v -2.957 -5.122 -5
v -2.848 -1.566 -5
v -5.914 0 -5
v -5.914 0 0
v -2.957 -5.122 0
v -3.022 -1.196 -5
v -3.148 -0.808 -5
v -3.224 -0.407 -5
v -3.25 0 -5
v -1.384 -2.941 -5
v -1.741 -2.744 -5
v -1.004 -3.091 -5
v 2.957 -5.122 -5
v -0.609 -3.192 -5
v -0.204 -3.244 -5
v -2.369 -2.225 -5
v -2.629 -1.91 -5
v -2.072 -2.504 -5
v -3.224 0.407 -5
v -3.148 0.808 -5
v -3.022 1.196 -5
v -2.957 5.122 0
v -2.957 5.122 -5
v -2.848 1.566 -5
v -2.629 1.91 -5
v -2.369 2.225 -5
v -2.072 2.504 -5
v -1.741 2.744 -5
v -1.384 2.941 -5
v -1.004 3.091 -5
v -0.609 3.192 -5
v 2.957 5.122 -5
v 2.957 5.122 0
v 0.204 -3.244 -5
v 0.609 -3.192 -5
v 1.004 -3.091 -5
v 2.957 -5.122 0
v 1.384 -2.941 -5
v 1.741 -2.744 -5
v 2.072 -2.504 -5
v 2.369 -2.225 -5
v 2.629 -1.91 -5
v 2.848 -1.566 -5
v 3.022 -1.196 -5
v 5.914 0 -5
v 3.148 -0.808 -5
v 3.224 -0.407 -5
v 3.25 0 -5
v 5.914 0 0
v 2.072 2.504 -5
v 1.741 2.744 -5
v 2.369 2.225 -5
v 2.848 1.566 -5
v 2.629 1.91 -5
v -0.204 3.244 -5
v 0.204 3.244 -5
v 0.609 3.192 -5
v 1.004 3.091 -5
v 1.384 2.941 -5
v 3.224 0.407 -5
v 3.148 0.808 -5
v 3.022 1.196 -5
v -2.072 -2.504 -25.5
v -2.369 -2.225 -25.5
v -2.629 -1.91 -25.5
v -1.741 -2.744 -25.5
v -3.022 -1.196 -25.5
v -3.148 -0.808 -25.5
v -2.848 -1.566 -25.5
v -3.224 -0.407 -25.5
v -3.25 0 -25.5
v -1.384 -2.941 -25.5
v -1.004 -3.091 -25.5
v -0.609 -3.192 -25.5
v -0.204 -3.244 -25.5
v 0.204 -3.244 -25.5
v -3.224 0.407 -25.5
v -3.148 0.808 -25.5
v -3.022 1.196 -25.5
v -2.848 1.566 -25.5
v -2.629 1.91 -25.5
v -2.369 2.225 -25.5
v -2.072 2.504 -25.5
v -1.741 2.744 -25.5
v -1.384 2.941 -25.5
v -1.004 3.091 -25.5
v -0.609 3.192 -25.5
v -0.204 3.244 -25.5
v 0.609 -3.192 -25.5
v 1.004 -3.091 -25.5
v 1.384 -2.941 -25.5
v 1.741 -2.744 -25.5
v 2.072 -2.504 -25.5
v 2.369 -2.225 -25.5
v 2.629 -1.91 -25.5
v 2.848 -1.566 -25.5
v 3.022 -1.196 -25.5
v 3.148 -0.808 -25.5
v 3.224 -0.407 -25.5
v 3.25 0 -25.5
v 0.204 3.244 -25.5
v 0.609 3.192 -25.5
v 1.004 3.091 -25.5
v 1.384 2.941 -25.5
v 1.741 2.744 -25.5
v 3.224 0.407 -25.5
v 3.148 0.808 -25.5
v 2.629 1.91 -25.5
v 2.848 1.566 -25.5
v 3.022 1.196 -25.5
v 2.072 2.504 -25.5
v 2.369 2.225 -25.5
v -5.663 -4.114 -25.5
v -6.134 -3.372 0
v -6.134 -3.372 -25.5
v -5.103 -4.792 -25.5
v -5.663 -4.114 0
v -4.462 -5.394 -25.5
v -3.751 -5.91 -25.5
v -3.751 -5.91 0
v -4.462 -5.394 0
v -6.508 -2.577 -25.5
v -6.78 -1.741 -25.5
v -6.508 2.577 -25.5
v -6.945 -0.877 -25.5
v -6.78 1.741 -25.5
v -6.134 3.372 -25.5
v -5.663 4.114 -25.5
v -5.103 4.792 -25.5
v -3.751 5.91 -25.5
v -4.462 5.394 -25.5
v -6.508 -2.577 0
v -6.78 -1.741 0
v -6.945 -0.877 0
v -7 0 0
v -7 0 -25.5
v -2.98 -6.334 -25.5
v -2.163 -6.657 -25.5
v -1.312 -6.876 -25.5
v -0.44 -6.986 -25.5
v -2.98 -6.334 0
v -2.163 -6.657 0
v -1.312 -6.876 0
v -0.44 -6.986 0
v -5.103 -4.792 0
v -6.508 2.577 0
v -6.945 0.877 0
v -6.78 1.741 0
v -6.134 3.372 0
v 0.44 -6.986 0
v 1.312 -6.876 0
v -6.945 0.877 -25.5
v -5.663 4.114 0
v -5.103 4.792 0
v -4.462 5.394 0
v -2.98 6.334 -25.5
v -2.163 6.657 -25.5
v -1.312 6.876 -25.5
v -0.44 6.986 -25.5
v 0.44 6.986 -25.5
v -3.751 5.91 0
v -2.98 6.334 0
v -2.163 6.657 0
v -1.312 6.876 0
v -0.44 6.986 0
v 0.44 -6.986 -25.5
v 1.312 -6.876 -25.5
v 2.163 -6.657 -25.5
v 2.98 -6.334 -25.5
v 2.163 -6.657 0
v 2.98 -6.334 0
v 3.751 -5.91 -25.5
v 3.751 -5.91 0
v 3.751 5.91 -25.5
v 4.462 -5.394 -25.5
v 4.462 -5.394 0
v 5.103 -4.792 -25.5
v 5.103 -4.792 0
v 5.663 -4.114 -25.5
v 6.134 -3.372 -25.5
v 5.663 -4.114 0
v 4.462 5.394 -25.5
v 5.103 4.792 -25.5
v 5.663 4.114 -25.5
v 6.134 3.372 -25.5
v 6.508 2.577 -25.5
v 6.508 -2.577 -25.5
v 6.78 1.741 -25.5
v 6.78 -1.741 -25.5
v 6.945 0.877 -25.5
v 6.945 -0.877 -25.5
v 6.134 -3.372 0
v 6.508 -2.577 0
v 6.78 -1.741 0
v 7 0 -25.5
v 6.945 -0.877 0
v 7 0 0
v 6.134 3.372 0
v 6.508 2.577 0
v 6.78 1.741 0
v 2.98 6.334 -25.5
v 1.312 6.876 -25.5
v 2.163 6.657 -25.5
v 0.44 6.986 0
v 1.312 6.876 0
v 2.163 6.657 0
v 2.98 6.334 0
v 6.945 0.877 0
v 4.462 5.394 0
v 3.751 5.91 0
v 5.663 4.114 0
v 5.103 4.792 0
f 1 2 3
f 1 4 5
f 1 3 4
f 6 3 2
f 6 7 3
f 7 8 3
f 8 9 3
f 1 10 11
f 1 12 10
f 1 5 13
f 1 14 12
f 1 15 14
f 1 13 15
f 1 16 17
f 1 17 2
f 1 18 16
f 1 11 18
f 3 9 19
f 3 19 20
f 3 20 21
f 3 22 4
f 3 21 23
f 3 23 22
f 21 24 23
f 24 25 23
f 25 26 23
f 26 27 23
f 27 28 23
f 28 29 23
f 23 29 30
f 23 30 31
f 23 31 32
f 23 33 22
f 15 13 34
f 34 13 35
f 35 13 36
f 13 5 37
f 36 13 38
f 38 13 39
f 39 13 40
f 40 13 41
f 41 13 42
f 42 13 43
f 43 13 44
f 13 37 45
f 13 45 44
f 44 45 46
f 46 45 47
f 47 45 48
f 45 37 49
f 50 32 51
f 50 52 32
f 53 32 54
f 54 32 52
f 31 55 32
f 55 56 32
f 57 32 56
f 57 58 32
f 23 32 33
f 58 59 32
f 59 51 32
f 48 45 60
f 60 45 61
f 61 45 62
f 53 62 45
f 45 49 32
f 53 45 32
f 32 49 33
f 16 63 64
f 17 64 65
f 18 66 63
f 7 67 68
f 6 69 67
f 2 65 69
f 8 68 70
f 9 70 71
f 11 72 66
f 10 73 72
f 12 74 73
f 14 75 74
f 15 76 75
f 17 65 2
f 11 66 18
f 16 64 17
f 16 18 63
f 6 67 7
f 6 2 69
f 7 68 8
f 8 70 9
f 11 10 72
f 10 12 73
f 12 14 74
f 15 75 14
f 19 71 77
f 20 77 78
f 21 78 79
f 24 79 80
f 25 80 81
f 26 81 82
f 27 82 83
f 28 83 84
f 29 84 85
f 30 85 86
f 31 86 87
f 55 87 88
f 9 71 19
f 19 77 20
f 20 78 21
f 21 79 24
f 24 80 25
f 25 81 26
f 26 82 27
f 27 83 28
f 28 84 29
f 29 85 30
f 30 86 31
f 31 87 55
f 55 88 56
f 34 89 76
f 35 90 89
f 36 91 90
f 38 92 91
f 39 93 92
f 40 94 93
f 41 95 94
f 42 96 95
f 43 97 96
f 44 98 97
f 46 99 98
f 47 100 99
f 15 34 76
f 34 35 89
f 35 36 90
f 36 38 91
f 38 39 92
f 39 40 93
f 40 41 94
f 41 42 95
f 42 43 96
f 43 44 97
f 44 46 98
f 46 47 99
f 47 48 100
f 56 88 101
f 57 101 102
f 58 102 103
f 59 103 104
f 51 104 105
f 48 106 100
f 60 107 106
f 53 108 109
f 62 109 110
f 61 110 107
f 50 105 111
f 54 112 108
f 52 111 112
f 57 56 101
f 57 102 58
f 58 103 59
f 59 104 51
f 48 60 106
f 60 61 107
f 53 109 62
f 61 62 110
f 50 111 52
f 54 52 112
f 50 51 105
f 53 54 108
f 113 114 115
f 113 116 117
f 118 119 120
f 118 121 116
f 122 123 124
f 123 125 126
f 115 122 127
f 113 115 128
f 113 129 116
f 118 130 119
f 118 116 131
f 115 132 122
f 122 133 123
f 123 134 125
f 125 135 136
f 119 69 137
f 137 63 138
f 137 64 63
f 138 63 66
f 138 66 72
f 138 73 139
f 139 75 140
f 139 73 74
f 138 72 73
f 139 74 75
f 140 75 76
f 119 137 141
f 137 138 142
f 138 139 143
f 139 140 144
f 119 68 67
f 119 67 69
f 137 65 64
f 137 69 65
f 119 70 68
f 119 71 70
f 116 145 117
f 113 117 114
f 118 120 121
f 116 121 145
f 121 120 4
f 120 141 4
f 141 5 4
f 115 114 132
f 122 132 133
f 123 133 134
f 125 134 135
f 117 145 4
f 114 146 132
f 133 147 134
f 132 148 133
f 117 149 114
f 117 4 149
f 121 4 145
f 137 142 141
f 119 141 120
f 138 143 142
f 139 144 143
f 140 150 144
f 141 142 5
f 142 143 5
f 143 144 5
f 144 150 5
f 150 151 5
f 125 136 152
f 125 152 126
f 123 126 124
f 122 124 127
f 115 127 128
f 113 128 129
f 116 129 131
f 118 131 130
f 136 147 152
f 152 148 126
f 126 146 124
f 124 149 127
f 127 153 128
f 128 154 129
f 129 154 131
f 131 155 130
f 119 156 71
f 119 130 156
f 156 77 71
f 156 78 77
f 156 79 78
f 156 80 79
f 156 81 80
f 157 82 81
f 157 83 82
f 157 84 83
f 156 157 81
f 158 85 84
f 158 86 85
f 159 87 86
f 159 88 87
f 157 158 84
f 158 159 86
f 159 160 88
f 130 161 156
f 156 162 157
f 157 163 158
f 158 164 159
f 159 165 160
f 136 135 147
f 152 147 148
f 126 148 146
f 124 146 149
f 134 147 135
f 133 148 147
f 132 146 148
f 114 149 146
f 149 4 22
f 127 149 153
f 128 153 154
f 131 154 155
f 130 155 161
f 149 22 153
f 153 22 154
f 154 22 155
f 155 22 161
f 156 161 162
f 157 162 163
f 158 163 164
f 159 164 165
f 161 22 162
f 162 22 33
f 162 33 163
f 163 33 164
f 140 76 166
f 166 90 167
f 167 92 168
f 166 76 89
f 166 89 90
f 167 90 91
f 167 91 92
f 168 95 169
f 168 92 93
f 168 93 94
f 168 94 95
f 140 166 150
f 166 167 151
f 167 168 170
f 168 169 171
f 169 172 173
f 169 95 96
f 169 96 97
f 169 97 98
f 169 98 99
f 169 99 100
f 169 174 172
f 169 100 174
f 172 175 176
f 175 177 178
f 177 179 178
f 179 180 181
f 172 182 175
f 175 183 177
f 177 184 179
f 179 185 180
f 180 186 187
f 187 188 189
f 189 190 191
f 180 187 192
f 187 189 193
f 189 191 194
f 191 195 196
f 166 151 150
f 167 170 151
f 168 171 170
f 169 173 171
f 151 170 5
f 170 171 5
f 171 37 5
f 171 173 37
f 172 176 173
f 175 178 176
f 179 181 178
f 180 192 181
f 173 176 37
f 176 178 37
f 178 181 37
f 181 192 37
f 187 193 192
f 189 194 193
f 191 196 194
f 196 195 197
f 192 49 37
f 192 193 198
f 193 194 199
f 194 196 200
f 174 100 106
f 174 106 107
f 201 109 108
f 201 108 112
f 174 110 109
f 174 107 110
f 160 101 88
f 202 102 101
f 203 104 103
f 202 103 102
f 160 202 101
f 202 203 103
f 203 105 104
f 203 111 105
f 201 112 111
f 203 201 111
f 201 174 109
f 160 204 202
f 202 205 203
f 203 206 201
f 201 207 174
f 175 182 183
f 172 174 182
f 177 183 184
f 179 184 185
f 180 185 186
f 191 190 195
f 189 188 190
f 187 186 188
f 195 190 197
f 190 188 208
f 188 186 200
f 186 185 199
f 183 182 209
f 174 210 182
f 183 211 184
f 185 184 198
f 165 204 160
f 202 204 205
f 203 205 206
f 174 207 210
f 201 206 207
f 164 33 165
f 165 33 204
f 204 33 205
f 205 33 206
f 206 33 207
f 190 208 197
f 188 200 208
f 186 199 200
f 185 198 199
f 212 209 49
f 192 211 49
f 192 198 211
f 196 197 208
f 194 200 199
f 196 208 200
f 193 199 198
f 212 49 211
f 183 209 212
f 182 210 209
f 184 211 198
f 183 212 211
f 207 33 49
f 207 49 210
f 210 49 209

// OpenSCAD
$fn = 50;


difference() {
	union() {
		translate(v = [0, 0, -25.5000000000]) {
			cylinder(h = 25.5000000000, r = 7.0000000000);
		}
		#translate(v = [0, 0, -27.0000000000]) {
			cylinder(h = 27, r = 2.8750000000);
		}
	}
	union() {
		translate(v = [0, 0, 0]) {
			rotate(a = [0, 0, 0]) {
				difference() {
					union() {
						translate(v = [0, 0, -5]) {
							linear_extrude(height = 5) {
								polygon(points = [[5.9142500000, 0.0000000000], [2.9571250000, 5.1218907443], [-2.9571250000, 5.1218907443], [-5.9142500000, 0.0000000000], [-2.9571250000, -5.1218907443], [2.9571250000, -5.1218907443]]);
							}
						}
					}
					union();
				}
			}
		}
		#translate(v = [0, 0, -100.0000000000]) {
			cylinder(h = 200, r = 3.2500000000);
		}
	}
}
